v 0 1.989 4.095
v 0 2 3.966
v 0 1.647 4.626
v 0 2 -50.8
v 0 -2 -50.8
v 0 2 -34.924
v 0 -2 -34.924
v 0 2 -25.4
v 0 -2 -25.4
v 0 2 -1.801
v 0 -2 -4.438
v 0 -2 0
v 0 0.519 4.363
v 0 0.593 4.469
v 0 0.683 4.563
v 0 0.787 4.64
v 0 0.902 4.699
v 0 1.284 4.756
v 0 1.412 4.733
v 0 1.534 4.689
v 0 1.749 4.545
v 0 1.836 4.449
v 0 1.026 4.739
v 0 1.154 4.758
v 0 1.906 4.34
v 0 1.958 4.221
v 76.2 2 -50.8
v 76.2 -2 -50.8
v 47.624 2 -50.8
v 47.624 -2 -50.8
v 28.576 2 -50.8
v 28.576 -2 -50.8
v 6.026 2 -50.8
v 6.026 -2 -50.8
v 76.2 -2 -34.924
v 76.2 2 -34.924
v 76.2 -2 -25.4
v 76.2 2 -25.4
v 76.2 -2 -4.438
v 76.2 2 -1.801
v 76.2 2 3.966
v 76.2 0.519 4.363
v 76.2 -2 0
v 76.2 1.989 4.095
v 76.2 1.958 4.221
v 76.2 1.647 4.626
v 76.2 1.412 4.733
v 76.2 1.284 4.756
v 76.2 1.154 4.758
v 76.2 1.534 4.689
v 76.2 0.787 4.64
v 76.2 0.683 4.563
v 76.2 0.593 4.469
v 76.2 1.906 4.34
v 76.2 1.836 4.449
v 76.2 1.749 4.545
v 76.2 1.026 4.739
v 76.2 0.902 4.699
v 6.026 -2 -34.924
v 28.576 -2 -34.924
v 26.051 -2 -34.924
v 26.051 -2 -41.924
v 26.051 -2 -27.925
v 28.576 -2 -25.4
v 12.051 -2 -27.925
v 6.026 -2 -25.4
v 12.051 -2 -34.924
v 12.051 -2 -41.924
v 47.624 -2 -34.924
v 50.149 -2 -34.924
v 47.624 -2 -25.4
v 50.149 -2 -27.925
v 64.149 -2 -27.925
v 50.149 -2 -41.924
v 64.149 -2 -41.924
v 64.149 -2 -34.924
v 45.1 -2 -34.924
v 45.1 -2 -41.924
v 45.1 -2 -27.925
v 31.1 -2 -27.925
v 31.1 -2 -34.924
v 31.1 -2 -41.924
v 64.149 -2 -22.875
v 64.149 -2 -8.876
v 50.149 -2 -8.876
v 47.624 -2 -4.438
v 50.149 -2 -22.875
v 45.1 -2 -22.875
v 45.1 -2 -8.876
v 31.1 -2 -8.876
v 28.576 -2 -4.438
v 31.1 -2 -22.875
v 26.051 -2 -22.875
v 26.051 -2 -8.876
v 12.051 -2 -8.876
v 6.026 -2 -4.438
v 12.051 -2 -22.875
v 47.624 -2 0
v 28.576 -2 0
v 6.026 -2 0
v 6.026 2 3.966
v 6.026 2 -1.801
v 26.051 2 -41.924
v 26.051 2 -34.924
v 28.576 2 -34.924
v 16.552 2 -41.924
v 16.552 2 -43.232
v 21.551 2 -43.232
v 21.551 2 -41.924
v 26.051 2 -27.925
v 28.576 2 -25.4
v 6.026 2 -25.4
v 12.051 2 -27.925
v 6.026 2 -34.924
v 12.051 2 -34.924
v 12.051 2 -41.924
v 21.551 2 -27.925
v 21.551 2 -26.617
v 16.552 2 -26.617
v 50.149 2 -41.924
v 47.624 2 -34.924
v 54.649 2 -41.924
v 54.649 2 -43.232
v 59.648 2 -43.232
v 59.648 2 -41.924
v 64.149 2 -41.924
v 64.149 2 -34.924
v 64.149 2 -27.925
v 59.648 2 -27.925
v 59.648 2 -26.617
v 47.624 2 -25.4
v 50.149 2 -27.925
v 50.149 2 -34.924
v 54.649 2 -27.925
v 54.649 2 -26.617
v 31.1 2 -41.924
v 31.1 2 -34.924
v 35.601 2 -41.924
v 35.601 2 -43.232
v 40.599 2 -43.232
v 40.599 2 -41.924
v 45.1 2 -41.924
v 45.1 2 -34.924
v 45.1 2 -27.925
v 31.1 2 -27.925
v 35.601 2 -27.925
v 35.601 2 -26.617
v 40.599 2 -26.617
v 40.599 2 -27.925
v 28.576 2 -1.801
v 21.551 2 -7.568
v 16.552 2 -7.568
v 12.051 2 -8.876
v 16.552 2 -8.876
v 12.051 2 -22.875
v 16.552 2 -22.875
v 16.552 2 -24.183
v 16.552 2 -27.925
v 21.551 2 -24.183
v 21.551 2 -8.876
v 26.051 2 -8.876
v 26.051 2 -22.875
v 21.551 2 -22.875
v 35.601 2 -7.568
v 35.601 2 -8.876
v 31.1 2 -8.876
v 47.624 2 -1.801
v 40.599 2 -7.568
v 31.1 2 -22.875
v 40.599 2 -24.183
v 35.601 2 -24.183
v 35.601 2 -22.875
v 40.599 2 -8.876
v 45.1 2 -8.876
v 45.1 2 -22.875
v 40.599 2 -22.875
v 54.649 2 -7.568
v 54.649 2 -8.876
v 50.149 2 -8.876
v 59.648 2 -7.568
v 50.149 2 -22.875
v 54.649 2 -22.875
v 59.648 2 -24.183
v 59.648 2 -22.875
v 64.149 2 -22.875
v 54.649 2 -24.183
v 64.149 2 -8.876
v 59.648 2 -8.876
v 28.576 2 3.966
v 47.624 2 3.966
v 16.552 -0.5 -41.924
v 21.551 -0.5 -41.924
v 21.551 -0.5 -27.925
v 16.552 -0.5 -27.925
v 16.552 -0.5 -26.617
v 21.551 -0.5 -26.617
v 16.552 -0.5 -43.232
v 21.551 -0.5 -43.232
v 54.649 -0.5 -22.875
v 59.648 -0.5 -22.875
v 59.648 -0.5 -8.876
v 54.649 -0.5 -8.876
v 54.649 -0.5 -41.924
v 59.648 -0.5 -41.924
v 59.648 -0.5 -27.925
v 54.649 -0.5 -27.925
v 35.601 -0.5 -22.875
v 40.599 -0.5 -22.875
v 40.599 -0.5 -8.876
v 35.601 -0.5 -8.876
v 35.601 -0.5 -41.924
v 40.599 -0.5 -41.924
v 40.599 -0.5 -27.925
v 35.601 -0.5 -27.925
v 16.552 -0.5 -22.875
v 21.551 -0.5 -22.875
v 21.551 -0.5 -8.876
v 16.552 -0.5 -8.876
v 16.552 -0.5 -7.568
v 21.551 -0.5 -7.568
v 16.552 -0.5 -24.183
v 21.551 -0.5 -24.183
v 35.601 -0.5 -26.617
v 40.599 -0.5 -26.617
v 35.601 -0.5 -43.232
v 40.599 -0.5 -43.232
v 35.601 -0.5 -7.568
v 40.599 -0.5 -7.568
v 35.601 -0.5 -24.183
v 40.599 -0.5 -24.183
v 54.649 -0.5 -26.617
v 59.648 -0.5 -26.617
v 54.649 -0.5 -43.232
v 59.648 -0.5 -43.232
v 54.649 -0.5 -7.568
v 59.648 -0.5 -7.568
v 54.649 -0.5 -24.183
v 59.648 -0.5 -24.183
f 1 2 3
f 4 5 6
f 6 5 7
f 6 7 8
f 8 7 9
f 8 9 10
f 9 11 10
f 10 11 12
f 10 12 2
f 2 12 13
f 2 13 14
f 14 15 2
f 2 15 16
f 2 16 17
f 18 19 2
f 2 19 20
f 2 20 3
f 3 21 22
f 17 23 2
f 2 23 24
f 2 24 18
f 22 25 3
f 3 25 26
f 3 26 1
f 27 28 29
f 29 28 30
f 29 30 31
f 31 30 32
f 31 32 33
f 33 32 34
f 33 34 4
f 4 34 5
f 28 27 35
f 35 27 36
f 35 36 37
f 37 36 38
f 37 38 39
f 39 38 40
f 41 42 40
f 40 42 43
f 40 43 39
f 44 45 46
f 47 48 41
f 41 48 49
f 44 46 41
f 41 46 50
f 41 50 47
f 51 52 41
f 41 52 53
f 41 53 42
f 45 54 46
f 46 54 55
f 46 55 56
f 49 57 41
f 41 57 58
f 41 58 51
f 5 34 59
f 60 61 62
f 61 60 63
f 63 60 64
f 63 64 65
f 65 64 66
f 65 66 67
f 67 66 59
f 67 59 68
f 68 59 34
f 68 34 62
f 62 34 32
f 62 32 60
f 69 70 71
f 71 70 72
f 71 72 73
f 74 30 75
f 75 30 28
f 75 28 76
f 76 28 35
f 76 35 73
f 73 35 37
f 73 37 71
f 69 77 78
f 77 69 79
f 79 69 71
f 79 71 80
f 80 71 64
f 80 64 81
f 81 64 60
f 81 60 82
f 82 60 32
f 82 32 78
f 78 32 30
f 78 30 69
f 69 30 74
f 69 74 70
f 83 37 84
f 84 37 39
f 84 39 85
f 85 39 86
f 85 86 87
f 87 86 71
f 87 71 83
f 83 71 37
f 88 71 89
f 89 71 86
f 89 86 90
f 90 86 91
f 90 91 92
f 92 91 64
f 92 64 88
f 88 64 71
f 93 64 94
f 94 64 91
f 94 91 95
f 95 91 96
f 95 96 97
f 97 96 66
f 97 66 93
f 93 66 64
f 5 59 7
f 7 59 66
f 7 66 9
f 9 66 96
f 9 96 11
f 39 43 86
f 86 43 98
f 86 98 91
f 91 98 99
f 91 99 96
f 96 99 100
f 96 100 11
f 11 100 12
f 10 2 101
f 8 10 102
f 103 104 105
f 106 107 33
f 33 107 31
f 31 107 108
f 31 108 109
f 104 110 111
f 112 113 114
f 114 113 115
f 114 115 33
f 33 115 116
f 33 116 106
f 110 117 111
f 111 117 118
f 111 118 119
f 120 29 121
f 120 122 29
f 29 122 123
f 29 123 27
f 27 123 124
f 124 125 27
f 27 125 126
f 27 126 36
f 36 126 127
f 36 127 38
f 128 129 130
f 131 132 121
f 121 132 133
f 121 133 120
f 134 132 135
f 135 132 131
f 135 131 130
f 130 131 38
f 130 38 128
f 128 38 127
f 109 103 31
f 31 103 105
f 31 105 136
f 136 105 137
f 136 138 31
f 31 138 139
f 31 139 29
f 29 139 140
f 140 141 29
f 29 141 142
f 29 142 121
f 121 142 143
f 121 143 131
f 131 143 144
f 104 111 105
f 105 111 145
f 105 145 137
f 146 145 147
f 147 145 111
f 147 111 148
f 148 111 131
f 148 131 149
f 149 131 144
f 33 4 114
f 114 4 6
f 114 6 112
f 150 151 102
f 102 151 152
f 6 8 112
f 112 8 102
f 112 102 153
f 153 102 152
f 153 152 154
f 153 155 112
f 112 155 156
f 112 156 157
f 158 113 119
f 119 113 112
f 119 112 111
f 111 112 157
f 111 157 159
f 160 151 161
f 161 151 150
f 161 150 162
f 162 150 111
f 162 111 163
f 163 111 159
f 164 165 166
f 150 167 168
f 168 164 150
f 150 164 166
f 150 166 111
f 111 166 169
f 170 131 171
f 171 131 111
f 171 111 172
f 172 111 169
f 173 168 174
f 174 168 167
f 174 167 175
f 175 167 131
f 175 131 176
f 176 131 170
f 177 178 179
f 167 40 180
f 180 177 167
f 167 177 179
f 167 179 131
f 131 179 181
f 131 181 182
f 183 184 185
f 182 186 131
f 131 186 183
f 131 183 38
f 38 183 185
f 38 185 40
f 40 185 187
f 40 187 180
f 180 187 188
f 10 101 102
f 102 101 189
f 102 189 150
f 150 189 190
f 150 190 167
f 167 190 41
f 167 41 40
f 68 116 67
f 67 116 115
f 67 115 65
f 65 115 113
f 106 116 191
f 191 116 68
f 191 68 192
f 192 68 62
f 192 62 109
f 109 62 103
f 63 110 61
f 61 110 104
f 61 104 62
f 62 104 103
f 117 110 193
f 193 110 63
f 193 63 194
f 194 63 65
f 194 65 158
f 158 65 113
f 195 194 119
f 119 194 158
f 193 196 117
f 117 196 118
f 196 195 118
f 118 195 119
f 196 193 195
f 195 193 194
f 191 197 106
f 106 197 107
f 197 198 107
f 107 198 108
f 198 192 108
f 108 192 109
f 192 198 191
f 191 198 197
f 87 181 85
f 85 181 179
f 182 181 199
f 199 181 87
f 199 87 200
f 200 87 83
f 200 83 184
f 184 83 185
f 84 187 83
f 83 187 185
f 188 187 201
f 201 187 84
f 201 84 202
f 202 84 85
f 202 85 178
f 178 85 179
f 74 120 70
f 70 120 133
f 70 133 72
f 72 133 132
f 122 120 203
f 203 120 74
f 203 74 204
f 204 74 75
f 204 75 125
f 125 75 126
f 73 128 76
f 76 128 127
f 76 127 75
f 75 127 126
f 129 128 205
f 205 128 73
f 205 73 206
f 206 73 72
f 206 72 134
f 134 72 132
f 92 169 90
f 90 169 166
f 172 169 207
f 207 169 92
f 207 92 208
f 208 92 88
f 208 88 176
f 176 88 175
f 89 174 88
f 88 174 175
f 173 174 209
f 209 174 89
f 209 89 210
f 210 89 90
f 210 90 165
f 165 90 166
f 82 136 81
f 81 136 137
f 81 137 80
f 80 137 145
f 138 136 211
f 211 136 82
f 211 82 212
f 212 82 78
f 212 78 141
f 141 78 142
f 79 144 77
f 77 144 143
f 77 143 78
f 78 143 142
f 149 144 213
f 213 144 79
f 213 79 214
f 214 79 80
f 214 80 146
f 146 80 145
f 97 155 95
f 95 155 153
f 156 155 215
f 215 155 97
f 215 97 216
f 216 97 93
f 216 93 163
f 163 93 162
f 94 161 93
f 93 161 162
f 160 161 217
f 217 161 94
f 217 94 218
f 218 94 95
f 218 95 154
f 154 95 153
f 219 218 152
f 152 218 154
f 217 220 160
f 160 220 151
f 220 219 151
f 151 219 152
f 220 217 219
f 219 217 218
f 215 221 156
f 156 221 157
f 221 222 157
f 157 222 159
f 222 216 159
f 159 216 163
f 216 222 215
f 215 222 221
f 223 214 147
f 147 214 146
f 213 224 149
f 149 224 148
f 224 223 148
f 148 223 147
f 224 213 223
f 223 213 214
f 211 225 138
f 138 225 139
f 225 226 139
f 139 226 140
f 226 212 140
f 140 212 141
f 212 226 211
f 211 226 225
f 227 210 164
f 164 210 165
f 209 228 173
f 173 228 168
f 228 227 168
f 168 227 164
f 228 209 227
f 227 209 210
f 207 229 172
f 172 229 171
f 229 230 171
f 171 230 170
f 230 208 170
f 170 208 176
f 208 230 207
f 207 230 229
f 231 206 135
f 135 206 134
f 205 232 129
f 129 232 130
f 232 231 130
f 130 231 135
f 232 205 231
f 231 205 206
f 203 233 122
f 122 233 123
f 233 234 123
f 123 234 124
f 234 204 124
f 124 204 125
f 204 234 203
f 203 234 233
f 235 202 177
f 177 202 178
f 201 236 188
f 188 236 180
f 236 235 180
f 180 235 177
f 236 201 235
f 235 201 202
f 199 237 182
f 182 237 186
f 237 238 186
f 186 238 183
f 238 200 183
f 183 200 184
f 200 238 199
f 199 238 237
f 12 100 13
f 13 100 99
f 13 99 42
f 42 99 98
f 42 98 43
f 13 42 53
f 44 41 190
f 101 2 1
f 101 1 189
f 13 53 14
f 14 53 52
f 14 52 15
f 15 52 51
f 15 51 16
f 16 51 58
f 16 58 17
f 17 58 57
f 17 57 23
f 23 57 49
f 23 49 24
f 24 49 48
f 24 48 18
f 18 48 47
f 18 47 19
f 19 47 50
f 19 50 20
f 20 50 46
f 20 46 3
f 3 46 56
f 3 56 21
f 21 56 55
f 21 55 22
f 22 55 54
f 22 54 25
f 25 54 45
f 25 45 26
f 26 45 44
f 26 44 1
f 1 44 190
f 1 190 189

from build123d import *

# Parameters (mm, degrees)
SKETCH1_W            = 76.2
SKETCH1_H            = 50.8
BOSS_EXTRUDE1_DEPTH  = 1.999996
SKETCH2_W            = 13.999972
SKETCH2_H            = 13.999972
CUT_EXTRUDE1_DEPTH   = 92.668314788
SKETCH3_W            = 4.998974
SKETCH3_H            = 1.307084
CUT_EXTRUDE2_DEPTH   = 2.500122
LPATTERN1_COUNT      = 3
LPATTERN1_PITCH      = 19.048984
LPATTERN1_COUNT_DIR2 = 2
LPATTERN1_PITCH_DIR2 = 19.048984
BOSS_EXTRUDE2_DEPTH  = 76.2
FILLET1_R            = 0.79375


with BuildPart() as part:
    # Sketch1 → Boss-Extrude1 (new, symmetric)
    with BuildSketch(Plane(origin=(0, 0, 0), x_dir=(1, 0, 0), z_dir=(0, 1, 0))):
        with Locations((38.1, 25.4)):
            Rectangle(SKETCH1_W, SKETCH1_H)
    extrude(amount=BOSS_EXTRUDE1_DEPTH, both=True)

    # Sketch2 → Cut-Extrude1 (cut, symmetric)
    with BuildSketch(Plane(origin=(0, 1.999996, 0), x_dir=(1, 0, 0), z_dir=(0, 1, 0))):
        with Locations((19.051016, 34.924492)):
            Rectangle(SKETCH2_W, SKETCH2_H)
    cut_extrude1 = extrude(amount=CUT_EXTRUDE1_DEPTH, both=True, mode=Mode.SUBTRACT)

    # Sketch3 → Cut-Extrude2 (cut)
    with BuildSketch(Plane(origin=(0, 1.999996, 0), x_dir=(1, 0, 0), z_dir=(0, 1, 0))):
        with Locations((19.051016, 42.57802)):
            Rectangle(SKETCH3_W, SKETCH3_H)
        with Locations((19.051016, 27.270964)):
            Rectangle(SKETCH3_W, SKETCH3_H)
    cut_extrude2 = extrude(amount=-CUT_EXTRUDE2_DEPTH, mode=Mode.SUBTRACT)

    # LPattern1: Cut-Extrude1, Cut-Extrude2 3 × 2
    with Locations(*[(i * LPATTERN1_PITCH, 0, j * LPATTERN1_PITCH_DIR2) for i in range(LPATTERN1_COUNT) for j in range(LPATTERN1_COUNT_DIR2) if (i, j) != (0, 0)]):
        add(cut_extrude1, mode=Mode.SUBTRACT)
        add(cut_extrude2, mode=Mode.SUBTRACT)

    # Sketch4 → Boss-Extrude2 (add)
    with BuildSketch(Plane.ZY):
        Polygon((0, -1.999996), (6.928189374, 1.999996), (0, 1.999996), align=None)
    extrude(amount=-BOSS_EXTRUDE2_DEPTH)

    # Fillet1
    fillet1_edges = [part.edges().sort_by_distance(p)[0] for p in [
        (38.1, 1.999996, 6.928189374),
    ]]
    fillet(fillet1_edges, radius=FILLET1_R)


solid = part.part
